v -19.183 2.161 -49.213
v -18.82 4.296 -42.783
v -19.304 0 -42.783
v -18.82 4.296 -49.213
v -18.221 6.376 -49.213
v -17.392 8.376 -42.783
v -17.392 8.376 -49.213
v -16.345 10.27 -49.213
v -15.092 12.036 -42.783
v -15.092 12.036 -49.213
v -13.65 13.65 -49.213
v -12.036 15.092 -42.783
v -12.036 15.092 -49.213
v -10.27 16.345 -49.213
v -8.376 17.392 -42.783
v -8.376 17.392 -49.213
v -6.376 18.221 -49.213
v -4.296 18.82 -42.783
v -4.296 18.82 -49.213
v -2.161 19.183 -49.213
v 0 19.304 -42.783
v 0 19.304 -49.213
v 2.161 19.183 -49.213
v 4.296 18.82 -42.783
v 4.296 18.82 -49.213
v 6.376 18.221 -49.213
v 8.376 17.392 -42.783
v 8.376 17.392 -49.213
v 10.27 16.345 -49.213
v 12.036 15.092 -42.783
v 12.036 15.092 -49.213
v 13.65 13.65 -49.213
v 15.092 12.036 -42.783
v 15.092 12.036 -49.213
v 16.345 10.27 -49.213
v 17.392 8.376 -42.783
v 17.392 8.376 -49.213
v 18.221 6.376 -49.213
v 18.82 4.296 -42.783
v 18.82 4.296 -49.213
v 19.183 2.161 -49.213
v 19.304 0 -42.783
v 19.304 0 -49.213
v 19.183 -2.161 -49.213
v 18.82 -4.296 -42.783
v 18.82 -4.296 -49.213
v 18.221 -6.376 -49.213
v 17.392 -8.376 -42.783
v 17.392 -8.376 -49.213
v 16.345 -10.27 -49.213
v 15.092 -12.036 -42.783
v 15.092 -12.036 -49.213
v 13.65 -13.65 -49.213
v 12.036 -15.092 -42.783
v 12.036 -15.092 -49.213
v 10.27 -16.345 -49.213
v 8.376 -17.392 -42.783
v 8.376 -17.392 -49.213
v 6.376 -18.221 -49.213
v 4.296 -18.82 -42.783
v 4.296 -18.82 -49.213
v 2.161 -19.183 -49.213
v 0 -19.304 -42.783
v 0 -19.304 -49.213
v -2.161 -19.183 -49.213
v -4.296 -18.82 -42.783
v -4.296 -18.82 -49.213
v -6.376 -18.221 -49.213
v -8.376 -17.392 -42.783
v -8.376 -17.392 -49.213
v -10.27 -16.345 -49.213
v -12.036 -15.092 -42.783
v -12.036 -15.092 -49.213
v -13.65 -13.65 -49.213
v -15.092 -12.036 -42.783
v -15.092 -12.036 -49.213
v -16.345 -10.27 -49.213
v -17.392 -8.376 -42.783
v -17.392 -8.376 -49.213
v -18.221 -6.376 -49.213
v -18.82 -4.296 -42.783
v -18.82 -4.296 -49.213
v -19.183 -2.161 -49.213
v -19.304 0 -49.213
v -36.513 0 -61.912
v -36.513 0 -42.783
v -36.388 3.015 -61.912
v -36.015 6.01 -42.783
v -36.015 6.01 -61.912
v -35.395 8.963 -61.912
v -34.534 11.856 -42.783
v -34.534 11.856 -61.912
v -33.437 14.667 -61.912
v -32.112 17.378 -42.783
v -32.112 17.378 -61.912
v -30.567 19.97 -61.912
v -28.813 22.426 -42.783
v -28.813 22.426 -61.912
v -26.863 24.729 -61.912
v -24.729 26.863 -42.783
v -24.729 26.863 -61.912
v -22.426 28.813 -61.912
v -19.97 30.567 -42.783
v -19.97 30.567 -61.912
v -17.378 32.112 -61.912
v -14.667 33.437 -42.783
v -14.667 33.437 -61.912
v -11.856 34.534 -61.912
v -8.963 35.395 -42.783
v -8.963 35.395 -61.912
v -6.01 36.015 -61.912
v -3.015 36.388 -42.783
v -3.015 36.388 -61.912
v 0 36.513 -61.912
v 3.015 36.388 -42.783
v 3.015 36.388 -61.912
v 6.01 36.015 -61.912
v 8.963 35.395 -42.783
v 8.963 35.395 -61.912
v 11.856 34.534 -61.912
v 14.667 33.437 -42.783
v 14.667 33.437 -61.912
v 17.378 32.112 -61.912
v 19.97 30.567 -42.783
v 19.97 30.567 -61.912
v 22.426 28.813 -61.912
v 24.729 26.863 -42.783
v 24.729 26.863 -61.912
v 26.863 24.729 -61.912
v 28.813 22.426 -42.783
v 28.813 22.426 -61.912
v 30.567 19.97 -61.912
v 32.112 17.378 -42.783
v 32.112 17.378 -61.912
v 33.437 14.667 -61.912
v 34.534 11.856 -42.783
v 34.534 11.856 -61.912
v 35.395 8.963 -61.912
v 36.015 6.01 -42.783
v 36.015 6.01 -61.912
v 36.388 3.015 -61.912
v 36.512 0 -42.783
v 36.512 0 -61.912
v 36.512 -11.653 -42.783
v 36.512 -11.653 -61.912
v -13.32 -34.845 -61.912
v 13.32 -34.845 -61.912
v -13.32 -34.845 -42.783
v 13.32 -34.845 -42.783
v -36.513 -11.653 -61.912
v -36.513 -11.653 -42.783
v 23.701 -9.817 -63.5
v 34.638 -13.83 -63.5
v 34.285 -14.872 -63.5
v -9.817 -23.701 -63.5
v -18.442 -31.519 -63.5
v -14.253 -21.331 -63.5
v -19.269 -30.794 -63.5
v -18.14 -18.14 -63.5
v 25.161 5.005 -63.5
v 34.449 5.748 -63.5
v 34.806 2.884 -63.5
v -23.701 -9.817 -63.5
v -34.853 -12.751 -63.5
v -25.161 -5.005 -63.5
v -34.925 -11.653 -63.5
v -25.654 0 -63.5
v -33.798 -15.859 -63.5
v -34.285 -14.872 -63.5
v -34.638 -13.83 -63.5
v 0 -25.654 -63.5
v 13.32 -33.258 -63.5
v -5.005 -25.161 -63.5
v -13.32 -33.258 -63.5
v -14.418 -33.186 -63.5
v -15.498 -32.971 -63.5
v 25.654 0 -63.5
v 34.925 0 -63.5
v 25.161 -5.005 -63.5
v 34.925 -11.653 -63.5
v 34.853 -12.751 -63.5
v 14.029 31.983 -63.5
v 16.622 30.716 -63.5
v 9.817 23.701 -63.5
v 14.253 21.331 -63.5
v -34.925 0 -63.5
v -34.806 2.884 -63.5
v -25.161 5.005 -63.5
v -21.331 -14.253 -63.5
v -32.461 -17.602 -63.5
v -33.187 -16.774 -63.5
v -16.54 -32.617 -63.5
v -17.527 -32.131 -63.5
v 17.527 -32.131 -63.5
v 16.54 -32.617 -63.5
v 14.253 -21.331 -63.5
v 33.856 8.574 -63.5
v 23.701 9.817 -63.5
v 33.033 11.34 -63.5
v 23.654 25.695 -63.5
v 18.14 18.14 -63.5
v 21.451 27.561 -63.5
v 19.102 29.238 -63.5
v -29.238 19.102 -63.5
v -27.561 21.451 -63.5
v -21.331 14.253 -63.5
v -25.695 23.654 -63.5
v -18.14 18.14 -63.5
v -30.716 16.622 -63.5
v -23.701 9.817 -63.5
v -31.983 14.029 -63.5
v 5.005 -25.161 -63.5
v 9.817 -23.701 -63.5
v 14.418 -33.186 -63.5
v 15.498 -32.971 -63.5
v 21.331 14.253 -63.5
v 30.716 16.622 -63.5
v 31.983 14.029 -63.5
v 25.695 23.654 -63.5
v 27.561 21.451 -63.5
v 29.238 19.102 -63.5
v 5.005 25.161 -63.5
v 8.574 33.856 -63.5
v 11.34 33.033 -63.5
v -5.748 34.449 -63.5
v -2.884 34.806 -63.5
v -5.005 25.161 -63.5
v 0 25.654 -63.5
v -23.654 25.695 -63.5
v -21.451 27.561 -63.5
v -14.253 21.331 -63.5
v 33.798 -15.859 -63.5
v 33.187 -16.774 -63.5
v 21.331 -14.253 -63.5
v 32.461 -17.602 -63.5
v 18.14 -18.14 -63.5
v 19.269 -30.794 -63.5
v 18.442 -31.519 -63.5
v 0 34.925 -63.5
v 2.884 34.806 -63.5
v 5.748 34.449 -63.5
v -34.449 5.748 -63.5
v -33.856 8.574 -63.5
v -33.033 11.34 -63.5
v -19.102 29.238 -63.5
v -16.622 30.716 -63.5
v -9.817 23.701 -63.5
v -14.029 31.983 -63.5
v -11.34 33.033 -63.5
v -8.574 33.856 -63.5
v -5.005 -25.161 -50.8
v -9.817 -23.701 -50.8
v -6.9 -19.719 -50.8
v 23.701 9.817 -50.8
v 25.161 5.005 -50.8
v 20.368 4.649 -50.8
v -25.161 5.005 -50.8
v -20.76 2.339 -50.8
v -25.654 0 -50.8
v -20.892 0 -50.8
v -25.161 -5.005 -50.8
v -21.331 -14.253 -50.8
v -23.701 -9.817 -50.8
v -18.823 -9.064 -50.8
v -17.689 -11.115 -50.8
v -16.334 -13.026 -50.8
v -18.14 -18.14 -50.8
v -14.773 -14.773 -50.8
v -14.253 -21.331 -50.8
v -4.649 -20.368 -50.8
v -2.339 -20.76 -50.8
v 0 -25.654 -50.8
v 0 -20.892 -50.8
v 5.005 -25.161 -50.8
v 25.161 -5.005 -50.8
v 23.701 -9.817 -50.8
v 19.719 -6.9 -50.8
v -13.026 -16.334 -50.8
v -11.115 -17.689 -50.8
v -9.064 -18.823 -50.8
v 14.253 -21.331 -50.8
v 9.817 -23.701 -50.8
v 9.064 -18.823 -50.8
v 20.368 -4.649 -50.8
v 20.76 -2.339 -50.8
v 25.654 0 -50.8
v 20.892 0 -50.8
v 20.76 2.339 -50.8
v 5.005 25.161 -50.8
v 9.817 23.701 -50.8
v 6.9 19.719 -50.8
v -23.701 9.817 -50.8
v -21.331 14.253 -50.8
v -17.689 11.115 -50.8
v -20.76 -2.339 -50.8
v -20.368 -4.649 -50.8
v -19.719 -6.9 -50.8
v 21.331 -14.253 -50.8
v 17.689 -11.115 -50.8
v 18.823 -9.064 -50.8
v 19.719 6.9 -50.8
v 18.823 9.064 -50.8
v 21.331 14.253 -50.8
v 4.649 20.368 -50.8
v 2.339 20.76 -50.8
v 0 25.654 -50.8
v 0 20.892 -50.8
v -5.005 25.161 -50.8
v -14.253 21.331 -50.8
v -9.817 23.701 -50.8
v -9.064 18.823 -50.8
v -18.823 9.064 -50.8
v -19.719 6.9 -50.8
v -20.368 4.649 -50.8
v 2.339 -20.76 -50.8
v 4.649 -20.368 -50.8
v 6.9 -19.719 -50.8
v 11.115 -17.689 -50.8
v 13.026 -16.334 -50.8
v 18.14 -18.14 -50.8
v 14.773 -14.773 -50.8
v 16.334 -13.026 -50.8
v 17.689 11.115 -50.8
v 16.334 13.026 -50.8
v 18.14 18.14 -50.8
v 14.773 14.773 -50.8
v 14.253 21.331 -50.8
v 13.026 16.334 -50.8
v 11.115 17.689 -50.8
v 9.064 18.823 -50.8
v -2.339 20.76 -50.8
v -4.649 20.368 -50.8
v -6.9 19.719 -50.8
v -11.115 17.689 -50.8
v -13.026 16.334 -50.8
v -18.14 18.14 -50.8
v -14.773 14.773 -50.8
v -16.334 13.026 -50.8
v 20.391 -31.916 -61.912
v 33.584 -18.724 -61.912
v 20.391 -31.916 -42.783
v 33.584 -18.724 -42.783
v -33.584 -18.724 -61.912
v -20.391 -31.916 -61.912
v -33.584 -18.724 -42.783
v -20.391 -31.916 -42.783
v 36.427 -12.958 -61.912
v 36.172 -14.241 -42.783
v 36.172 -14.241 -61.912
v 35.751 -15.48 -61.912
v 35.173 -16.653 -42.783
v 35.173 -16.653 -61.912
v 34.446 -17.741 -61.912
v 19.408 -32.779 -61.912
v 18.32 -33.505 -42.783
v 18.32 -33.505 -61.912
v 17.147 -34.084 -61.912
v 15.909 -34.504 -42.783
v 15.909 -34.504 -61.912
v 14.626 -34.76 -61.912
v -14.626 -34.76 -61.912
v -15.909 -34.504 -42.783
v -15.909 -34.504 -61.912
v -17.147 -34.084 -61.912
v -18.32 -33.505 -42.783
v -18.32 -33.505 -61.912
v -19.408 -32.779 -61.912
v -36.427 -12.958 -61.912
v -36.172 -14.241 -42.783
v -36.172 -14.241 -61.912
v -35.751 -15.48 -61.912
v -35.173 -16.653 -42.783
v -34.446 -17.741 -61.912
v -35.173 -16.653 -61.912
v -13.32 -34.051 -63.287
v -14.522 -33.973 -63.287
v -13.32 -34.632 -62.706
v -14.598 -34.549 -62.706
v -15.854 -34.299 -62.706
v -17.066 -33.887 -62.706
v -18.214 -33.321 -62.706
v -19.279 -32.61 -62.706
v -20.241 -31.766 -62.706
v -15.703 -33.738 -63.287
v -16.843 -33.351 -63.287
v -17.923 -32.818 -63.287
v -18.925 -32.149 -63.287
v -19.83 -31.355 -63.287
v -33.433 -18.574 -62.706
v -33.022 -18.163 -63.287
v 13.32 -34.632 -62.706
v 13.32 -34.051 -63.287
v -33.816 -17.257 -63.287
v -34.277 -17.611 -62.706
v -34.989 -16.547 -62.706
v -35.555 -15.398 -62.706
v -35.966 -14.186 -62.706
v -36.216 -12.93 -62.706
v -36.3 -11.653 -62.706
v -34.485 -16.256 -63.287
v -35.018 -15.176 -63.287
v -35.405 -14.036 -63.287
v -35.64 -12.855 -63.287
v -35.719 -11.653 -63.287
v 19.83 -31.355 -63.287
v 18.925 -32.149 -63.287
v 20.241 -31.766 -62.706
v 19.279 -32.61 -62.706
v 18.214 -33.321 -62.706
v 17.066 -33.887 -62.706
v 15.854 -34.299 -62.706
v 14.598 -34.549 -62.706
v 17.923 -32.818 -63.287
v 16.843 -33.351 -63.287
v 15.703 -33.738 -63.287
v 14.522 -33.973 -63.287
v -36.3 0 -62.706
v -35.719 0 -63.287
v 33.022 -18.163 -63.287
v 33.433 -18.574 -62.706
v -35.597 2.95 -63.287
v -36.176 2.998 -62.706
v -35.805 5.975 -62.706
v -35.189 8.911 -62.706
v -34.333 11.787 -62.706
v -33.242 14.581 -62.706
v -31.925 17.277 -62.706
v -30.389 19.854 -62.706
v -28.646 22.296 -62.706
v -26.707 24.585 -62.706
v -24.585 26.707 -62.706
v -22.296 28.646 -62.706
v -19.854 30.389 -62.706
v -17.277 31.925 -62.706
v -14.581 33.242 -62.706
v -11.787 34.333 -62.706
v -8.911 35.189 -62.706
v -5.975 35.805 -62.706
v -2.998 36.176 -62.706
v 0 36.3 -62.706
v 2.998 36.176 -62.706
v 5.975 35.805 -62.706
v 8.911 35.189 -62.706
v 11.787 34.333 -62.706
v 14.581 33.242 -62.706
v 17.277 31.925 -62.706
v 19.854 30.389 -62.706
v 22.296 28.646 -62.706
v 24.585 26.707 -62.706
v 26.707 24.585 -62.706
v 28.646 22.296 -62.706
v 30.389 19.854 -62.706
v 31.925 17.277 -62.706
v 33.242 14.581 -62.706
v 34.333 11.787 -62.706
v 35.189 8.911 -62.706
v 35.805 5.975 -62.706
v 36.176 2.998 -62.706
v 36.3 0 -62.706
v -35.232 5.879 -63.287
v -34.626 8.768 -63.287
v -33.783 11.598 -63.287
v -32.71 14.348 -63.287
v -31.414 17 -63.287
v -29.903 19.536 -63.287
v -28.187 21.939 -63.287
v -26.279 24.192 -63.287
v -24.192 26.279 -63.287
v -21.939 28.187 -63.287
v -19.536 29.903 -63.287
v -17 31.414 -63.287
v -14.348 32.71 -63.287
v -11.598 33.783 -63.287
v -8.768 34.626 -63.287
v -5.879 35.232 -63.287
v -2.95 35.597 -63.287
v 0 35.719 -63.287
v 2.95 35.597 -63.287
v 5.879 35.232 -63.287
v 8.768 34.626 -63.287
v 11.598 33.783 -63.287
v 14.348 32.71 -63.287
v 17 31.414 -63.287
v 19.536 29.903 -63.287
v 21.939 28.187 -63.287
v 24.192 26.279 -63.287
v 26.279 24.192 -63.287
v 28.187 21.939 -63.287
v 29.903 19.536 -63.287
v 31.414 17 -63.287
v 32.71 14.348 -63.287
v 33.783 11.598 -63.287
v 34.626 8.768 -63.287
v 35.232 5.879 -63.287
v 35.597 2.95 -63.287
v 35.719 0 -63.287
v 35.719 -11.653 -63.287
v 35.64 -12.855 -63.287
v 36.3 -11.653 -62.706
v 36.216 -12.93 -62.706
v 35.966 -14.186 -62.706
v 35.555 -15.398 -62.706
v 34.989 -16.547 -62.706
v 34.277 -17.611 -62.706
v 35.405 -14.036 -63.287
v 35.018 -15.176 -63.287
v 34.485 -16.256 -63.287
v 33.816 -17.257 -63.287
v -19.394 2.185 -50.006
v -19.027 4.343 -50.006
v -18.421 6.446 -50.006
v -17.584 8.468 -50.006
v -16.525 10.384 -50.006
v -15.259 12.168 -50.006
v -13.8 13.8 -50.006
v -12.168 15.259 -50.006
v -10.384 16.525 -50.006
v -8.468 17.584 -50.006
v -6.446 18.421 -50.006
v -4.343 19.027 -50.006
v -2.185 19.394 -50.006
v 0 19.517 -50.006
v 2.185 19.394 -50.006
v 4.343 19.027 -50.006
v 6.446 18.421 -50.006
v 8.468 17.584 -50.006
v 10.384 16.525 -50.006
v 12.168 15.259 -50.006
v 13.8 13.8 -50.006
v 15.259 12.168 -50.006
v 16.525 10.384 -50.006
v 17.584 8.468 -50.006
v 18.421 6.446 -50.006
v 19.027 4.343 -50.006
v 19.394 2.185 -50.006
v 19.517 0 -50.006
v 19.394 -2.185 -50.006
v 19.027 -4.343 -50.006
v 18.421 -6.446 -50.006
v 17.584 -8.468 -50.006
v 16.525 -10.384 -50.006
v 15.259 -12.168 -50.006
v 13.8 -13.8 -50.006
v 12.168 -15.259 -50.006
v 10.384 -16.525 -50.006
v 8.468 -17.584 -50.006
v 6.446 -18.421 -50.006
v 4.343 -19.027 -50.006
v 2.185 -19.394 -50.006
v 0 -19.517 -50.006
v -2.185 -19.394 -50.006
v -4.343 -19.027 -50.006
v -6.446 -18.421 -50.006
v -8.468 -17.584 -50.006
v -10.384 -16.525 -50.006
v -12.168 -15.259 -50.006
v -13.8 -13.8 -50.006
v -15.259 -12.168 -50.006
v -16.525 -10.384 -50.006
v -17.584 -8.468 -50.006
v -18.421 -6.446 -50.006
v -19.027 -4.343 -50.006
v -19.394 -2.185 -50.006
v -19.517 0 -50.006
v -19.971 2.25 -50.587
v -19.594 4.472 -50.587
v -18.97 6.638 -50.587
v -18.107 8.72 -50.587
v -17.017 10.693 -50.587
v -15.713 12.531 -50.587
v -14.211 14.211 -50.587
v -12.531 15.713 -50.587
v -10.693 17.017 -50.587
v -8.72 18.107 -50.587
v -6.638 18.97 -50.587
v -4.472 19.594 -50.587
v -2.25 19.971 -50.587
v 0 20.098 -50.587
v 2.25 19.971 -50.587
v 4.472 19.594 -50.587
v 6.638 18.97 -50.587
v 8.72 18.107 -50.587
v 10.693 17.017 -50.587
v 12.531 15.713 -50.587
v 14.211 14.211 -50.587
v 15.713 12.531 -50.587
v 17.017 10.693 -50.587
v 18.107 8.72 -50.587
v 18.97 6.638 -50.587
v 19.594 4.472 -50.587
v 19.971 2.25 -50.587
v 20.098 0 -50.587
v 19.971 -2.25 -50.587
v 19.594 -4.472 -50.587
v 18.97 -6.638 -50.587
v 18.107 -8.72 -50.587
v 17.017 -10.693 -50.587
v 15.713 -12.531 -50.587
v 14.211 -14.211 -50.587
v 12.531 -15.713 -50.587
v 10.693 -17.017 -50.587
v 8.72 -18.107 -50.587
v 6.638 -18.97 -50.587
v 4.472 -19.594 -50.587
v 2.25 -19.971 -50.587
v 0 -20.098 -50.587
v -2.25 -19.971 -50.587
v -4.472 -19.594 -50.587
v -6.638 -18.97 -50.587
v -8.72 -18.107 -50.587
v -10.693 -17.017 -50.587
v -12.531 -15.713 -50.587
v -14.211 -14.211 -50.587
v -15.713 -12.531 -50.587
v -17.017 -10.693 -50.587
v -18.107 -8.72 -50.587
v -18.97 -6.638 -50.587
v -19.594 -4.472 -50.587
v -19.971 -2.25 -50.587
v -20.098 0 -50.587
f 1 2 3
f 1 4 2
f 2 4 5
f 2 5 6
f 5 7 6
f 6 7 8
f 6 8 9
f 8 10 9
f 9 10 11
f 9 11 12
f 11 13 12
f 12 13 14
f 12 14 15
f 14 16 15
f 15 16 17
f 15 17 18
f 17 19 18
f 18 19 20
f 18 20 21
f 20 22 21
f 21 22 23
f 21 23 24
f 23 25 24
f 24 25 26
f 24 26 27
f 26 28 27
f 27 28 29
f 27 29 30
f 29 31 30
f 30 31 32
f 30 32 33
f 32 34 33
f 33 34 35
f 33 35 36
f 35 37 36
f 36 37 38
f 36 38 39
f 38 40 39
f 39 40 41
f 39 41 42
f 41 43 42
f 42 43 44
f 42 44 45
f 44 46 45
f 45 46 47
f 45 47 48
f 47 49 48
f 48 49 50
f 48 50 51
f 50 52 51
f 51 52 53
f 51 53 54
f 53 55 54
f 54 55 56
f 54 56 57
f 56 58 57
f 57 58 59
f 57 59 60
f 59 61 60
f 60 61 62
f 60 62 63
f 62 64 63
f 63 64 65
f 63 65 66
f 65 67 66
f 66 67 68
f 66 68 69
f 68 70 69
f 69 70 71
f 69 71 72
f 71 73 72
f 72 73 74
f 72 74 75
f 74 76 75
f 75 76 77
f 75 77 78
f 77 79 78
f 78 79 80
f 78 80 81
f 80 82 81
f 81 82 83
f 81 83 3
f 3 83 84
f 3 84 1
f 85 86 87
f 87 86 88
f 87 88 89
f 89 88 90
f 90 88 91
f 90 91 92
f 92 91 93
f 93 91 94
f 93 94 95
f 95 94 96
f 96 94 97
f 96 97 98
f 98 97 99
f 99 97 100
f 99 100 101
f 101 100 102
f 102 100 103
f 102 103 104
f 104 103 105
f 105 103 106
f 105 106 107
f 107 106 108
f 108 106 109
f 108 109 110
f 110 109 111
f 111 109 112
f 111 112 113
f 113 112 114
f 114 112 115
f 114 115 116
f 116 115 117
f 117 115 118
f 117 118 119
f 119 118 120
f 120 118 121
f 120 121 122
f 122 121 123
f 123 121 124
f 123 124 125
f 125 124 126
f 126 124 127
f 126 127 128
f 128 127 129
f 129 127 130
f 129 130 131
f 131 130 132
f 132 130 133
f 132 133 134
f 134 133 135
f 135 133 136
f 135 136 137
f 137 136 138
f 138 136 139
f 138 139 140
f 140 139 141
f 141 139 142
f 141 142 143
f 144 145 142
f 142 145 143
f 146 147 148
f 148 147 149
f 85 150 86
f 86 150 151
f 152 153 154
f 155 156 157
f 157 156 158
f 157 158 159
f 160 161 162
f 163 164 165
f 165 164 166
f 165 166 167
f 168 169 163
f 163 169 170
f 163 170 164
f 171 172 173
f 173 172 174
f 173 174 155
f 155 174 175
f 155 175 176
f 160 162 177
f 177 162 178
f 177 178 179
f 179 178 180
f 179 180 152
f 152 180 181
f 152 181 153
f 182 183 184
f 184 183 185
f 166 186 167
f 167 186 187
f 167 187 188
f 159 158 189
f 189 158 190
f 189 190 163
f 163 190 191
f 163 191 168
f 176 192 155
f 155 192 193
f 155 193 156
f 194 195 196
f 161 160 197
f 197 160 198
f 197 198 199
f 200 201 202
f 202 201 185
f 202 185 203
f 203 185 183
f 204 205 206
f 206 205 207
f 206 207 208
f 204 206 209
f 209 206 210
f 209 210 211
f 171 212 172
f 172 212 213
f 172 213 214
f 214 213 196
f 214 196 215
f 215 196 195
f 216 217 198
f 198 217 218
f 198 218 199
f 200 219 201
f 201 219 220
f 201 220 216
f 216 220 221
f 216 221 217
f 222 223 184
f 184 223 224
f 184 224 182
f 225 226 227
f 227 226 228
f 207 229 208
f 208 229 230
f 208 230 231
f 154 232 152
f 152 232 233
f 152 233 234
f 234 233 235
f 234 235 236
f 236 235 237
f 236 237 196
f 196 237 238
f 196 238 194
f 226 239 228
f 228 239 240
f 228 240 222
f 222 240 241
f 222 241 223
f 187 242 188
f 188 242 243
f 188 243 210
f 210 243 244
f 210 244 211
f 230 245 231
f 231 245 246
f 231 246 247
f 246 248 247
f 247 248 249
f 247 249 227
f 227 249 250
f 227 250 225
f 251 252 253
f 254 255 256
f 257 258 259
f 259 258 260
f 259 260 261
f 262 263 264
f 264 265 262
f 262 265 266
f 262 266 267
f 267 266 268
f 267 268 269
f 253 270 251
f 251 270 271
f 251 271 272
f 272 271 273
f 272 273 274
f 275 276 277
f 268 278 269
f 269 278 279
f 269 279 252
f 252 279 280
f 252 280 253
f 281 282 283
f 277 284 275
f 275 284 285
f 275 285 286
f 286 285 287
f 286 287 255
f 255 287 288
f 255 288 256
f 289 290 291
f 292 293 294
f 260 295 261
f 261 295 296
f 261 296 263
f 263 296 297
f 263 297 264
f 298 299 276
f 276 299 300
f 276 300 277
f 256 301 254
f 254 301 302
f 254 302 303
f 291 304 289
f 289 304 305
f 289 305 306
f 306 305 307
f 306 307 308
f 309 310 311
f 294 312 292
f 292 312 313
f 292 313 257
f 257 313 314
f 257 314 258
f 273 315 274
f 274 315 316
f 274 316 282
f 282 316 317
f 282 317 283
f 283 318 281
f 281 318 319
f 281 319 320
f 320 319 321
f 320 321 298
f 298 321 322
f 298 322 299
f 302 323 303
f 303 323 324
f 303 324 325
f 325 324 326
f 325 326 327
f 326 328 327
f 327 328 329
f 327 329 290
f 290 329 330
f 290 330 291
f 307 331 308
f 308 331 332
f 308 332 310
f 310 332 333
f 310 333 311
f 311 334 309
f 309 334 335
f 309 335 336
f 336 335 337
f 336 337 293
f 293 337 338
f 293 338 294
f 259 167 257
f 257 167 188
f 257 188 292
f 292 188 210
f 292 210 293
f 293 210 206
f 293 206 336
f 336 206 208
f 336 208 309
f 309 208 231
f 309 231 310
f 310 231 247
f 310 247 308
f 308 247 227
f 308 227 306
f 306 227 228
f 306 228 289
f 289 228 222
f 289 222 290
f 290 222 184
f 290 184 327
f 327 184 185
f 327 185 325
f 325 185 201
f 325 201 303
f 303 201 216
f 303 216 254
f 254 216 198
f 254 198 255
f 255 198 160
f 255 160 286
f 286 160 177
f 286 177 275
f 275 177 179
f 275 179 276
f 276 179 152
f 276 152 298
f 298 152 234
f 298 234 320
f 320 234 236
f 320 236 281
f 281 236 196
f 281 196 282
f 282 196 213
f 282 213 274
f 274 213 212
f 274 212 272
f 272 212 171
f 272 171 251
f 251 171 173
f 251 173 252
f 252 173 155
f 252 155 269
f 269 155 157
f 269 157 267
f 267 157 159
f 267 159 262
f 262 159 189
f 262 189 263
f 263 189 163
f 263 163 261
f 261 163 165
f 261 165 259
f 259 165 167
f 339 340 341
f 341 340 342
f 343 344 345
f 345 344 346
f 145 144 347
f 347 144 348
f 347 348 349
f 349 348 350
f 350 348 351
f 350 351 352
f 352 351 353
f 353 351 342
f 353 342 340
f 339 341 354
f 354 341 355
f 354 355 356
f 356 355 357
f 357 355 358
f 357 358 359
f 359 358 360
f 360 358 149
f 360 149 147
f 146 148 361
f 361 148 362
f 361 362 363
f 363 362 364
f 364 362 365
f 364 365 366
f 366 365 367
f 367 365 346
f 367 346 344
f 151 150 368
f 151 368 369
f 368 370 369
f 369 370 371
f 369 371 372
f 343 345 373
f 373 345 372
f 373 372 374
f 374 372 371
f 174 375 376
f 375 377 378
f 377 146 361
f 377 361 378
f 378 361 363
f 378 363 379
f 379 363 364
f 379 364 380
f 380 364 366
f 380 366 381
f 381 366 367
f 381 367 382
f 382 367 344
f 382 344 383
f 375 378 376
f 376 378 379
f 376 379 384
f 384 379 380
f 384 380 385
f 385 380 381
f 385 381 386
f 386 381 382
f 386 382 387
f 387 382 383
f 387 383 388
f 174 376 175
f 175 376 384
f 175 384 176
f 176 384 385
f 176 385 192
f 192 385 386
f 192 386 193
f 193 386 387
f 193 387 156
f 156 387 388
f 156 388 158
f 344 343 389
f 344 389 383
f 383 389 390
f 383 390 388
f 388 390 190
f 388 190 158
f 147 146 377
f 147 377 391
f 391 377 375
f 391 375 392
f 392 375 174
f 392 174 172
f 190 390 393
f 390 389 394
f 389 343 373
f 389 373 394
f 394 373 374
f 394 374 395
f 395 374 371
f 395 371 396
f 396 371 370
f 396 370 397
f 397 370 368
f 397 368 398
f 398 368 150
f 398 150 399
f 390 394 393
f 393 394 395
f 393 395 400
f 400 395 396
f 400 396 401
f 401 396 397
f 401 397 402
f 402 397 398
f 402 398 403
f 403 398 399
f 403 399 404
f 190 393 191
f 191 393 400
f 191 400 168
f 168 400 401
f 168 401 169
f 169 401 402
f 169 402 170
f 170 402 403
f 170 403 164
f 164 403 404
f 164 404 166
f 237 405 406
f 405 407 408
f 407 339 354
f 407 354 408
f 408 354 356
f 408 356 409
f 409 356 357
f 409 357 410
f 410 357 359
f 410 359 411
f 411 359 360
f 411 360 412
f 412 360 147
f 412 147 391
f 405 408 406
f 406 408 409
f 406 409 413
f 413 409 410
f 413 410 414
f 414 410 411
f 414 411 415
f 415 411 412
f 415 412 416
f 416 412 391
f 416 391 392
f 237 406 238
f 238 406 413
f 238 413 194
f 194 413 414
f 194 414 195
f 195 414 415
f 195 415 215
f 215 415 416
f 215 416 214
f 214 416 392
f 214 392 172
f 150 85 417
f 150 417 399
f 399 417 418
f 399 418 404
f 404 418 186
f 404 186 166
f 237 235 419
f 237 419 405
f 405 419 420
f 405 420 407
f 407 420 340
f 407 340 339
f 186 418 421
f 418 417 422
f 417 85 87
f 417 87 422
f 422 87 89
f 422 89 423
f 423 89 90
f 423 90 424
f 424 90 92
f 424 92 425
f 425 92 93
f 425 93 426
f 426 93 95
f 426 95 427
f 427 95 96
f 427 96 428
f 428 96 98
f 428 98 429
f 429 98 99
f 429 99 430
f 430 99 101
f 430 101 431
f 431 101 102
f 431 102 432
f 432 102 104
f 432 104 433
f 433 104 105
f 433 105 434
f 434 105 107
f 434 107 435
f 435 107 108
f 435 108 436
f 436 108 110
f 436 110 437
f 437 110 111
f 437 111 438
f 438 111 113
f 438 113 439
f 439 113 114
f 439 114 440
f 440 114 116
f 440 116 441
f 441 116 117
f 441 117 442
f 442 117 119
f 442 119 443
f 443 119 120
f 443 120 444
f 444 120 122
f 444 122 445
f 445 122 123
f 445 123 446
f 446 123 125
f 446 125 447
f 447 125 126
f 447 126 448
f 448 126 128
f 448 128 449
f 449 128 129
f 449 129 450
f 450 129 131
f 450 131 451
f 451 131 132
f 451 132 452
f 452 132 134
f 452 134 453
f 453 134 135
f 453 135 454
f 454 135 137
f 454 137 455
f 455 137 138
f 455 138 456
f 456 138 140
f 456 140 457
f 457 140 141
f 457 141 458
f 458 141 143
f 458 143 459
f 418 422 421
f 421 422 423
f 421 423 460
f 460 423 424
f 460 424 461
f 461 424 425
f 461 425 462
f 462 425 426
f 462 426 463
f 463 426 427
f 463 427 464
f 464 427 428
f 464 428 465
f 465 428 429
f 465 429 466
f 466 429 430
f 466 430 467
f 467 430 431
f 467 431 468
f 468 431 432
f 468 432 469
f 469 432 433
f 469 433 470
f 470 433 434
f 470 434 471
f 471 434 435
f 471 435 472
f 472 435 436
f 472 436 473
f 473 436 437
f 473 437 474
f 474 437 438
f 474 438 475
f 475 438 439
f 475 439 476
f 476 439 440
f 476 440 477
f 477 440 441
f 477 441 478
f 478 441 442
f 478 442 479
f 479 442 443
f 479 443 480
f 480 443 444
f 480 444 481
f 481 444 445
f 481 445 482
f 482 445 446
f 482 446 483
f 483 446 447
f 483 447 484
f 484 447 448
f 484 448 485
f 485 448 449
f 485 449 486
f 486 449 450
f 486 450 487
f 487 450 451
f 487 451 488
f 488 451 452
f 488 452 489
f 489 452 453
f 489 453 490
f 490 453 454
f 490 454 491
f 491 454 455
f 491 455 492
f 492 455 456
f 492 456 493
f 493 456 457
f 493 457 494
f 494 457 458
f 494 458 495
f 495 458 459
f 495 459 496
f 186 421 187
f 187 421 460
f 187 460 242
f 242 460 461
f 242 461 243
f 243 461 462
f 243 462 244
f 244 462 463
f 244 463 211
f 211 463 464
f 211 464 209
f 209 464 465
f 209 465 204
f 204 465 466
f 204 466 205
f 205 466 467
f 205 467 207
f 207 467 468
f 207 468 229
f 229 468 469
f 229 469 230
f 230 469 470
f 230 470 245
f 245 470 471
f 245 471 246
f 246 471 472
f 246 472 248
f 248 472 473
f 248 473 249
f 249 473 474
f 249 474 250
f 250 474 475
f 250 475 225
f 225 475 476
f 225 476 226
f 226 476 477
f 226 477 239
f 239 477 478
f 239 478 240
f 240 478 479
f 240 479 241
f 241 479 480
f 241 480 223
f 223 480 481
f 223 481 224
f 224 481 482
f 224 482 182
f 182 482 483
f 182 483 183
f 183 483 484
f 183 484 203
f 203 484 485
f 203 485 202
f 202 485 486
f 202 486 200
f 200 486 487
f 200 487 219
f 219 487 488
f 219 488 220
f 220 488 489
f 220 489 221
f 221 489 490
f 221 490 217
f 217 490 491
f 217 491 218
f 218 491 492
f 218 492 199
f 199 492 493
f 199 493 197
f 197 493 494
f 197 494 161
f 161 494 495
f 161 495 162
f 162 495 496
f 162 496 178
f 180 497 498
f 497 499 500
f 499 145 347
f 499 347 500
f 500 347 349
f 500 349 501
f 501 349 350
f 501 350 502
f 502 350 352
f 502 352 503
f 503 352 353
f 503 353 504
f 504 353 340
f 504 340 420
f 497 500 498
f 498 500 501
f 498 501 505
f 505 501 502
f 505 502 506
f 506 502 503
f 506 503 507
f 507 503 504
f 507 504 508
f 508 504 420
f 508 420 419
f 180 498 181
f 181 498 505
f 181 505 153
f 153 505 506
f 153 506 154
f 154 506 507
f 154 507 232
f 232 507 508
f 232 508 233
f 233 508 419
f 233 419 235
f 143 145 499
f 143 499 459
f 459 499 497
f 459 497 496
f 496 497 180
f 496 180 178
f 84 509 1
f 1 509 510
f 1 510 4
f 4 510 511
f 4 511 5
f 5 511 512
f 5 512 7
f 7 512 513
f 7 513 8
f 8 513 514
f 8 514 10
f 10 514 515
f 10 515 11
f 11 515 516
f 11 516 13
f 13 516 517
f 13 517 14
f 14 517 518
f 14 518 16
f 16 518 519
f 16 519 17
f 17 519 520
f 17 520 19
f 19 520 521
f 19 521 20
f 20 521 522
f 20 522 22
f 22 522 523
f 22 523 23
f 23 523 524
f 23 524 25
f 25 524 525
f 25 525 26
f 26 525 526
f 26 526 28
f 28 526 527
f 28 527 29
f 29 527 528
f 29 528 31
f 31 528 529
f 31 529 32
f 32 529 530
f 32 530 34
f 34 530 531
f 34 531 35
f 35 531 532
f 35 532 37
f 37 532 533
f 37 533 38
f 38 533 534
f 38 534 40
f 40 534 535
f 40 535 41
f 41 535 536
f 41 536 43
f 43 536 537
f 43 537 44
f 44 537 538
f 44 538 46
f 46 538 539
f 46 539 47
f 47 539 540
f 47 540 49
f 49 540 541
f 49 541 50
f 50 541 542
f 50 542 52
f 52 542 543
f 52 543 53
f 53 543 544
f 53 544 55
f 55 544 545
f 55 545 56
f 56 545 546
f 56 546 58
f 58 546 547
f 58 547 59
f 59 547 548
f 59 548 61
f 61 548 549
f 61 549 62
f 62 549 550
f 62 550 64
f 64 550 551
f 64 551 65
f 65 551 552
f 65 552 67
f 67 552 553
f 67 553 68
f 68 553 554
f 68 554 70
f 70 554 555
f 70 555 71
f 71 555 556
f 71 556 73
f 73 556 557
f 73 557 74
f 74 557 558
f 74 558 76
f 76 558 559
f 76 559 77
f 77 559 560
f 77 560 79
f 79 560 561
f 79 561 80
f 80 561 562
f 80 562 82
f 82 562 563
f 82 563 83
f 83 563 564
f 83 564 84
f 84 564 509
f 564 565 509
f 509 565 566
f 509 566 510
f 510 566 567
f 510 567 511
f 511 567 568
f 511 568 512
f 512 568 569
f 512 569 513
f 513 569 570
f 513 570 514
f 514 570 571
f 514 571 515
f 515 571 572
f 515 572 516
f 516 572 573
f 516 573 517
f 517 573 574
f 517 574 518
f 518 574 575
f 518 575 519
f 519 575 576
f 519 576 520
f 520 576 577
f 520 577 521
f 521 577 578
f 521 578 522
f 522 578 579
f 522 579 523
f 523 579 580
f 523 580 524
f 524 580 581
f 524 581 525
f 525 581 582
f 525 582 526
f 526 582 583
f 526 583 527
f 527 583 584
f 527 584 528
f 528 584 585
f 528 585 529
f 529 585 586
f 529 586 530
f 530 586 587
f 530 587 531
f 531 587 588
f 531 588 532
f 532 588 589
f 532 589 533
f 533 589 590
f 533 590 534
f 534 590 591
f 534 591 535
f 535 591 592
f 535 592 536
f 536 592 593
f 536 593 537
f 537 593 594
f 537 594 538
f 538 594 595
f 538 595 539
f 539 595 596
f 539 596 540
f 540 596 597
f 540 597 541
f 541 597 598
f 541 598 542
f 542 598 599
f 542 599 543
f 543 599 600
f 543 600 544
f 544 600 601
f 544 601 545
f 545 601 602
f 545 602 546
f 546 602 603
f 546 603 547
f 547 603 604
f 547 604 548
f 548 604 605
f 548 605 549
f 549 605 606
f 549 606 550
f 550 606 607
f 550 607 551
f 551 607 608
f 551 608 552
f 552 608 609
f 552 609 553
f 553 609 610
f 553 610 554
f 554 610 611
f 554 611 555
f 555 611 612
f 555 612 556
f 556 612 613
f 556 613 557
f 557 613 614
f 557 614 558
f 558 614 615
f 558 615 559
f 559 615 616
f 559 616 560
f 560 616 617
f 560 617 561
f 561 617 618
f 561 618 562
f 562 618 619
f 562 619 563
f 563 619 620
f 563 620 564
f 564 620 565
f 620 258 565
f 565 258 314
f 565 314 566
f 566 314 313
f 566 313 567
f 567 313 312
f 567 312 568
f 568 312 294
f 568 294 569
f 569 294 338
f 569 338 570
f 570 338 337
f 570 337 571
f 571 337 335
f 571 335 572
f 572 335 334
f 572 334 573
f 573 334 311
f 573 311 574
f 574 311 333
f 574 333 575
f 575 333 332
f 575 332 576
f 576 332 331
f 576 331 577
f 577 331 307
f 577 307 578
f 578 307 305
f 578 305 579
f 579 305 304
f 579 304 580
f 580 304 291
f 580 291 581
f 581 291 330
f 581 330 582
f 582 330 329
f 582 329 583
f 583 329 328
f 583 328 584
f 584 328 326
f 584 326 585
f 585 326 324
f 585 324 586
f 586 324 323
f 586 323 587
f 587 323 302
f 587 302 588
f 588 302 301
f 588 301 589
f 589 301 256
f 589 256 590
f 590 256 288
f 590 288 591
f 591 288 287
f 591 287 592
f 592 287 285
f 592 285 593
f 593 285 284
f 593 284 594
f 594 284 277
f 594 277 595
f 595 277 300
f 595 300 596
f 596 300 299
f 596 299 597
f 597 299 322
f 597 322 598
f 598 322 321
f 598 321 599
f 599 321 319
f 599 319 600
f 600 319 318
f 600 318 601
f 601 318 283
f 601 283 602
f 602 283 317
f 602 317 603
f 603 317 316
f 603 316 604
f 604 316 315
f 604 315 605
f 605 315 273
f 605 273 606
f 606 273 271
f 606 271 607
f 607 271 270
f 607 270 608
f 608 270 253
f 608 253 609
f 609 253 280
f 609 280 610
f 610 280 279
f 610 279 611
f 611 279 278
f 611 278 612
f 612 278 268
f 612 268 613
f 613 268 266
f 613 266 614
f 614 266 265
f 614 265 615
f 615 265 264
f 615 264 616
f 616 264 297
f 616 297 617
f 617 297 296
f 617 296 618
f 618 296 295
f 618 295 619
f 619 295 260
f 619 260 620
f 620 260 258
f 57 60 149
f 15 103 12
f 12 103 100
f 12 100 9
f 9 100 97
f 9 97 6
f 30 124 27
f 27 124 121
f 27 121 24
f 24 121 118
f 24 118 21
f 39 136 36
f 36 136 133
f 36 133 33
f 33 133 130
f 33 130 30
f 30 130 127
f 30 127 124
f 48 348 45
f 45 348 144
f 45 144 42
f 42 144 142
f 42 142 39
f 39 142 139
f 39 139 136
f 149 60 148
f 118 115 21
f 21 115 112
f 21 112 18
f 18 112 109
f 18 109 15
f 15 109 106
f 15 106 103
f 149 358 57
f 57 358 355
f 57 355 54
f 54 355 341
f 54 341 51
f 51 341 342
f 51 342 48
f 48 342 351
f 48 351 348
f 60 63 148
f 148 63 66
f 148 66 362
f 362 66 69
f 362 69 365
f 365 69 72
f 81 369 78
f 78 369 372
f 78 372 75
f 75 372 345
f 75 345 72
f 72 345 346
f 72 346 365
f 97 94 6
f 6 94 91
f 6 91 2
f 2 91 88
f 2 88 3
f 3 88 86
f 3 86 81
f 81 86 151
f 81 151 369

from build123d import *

# Parameters (mm, degrees)
BOSS_EXTRUDE1_DEPTH      = 63.5
BOSS_EXTRUDE1_DEPTH_BACK = 63.5
SKETCH3_R                = 36.5125
BOSS_EXTRUDE2_DEPTH      = 101.6
SKETCH4_R                = 19.304
CUT_EXTRUDE1_DEPTH       = 167.6875
SKETCH5_R                = 25.654
CUT_EXTRUDE2_DEPTH       = 12.7
CUT_EXTRUDE3_START       = -12.7
SKETCH6_R                = 25.654
CUT_EXTRUDE3_DEPTH       = 12.7
SKETCH7_R                = 30.4165
CUT_EXTRUDE4_DEPTH       = 78.834
CHAMFER1_SIZE            = 19.05
FILLET1_R                = 10
FILLET2_R                = 1.5875
CUT_EXTRUDE5_DEPTH       = 126.25163734
CUT_EXTRUDE5_DEPTH_BACK  = 126.25163734
SKETCH8_W                = 121.091569705
SKETCH8_H                = 140.894572221


with BuildPart() as part:
    # Sketch1 → Boss-Extrude1 (new, two sides: drawn at the far end of the back side and taken through both)
    with BuildSketch(Plane.XY.offset(-BOSS_EXTRUDE1_DEPTH_BACK)):
        with BuildLine():
            Line((-36.5125, 0), (-36.5125, -34.845102384))
            Line((-36.5125, -34.845102384), (36.5125, -34.845102384))
            Line((36.5125, -34.845102384), (36.5125, 0))
            ThreePointArc((36.5125, 0), (0, 36.5125), (-36.5125, 0))
        make_face()
    extrude(amount=BOSS_EXTRUDE1_DEPTH + BOSS_EXTRUDE1_DEPTH_BACK)

    # Sketch3 → Boss-Extrude2 (add)
    with BuildSketch(Plane(origin=(0, 0, 0), x_dir=(1, 0, 0), z_dir=(0, 1, 0))):
        Circle(SKETCH3_R)
    extrude(amount=BOSS_EXTRUDE2_DEPTH)

    # Sketch4 → Cut-Extrude1 (cut, through all)
    with BuildSketch(Plane(origin=(0, 0, -63.5), x_dir=(-1, 0, 0), z_dir=(0, 0, -1))):
        Circle(SKETCH4_R)
    extrude(amount=-CUT_EXTRUDE1_DEPTH, mode=Mode.SUBTRACT)

    # Sketch5 → Cut-Extrude2 (cut)
    with BuildSketch(Plane(origin=(0, 0, -63.5), x_dir=(-1, 0, 0), z_dir=(0, 0, -1))):
        Circle(SKETCH5_R)
    extrude(amount=-CUT_EXTRUDE2_DEPTH, mode=Mode.SUBTRACT)

    # Sketch6 → Cut-Extrude3 (cut)
    with BuildSketch(Plane.XY.offset(63.5).offset(CUT_EXTRUDE3_START)):
        Circle(SKETCH6_R)
    extrude(amount=CUT_EXTRUDE3_DEPTH, mode=Mode.SUBTRACT)

    # Sketch7 → Cut-Extrude4 (cut)
    with BuildSketch(Plane(origin=(0, 101.6, 0), x_dir=(1, 0, 0), z_dir=(0, 1, 0))):
        Circle(SKETCH7_R)
    extrude(amount=-CUT_EXTRUDE4_DEPTH, mode=Mode.SUBTRACT)

    # Chamfer1
    chamfer1_edges = [part.edges().sort_by_distance(p)[0] for p in [
        (36.5125, -34.845102384, 0),
        (-36.5125, -34.845102384, 0),
    ]]
    chamfer(chamfer1_edges, length=CHAMFER1_SIZE)

    # Fillet1
    fillet1_edges = [part.edges().sort_by_distance(p)[0] for p in [
        (36.5125, -15.795102384, 0),
        (17.4625, -34.845102384, 0),
        (-17.4625, -34.845102384, 0),
        (-36.5125, -15.795102384, 0),
    ]]
    fillet(fillet1_edges, radius=FILLET1_R)

    # Fillet2
    fillet2_edges = [part.edges().sort_by_distance(p)[0] for p in [
        (36.5125, -5.82648338, -63.5),
        (35.751295325, -15.479801084, -63.5),
        (26.9875, -25.320102384, -63.5),
        (17.1471987, -34.083897709, -63.5),
        (0, -34.845102384, -63.5),
        (-17.1471987, -34.083897709, -63.5),
        (-26.9875, -25.320102384, -63.5),
        (-35.751295325, -15.479801084, -63.5),
        (-36.5125, -5.82648338, -63.5),
        (36.5125, -5.82648338, 63.5),
        (35.751295325, -15.479801084, 63.5),
        (26.9875, -25.320102384, 63.5),
        (17.1471987, -34.083897709, 63.5),
        (0, -34.845102384, 63.5),
        (-17.1471987, -34.083897709, 63.5),
        (-26.9875, -25.320102384, 63.5),
        (-35.751295325, -15.479801084, 63.5),
        (-36.5125, -5.82648338, 63.5),
        (19.304, 0, -50.8),
        (19.304, 0, 50.8),
        (-30.4165, 101.6, 0),
        (-36.5125, 101.6, 0),
        (0, 36.5125, -63.5),
        (0, 36.5125, 63.5),
    ]]
    fillet(fillet2_edges, radius=FILLET2_R)

    # Sketch8 → Cut-Extrude5 (cut, two sides: drawn at the far end of the back side and taken through both)
    with BuildSketch(Plane(origin=(0, 0, 0), x_dir=(0, 0, -1), z_dir=(1, 0, 0)).offset(-CUT_EXTRUDE5_DEPTH_BACK)):
        with Locations((-17.762374118, 35.602183727)):
            Rectangle(SKETCH8_W, SKETCH8_H)
    extrude(amount=CUT_EXTRUDE5_DEPTH + CUT_EXTRUDE5_DEPTH_BACK, mode=Mode.SUBTRACT)


solid = part.part
